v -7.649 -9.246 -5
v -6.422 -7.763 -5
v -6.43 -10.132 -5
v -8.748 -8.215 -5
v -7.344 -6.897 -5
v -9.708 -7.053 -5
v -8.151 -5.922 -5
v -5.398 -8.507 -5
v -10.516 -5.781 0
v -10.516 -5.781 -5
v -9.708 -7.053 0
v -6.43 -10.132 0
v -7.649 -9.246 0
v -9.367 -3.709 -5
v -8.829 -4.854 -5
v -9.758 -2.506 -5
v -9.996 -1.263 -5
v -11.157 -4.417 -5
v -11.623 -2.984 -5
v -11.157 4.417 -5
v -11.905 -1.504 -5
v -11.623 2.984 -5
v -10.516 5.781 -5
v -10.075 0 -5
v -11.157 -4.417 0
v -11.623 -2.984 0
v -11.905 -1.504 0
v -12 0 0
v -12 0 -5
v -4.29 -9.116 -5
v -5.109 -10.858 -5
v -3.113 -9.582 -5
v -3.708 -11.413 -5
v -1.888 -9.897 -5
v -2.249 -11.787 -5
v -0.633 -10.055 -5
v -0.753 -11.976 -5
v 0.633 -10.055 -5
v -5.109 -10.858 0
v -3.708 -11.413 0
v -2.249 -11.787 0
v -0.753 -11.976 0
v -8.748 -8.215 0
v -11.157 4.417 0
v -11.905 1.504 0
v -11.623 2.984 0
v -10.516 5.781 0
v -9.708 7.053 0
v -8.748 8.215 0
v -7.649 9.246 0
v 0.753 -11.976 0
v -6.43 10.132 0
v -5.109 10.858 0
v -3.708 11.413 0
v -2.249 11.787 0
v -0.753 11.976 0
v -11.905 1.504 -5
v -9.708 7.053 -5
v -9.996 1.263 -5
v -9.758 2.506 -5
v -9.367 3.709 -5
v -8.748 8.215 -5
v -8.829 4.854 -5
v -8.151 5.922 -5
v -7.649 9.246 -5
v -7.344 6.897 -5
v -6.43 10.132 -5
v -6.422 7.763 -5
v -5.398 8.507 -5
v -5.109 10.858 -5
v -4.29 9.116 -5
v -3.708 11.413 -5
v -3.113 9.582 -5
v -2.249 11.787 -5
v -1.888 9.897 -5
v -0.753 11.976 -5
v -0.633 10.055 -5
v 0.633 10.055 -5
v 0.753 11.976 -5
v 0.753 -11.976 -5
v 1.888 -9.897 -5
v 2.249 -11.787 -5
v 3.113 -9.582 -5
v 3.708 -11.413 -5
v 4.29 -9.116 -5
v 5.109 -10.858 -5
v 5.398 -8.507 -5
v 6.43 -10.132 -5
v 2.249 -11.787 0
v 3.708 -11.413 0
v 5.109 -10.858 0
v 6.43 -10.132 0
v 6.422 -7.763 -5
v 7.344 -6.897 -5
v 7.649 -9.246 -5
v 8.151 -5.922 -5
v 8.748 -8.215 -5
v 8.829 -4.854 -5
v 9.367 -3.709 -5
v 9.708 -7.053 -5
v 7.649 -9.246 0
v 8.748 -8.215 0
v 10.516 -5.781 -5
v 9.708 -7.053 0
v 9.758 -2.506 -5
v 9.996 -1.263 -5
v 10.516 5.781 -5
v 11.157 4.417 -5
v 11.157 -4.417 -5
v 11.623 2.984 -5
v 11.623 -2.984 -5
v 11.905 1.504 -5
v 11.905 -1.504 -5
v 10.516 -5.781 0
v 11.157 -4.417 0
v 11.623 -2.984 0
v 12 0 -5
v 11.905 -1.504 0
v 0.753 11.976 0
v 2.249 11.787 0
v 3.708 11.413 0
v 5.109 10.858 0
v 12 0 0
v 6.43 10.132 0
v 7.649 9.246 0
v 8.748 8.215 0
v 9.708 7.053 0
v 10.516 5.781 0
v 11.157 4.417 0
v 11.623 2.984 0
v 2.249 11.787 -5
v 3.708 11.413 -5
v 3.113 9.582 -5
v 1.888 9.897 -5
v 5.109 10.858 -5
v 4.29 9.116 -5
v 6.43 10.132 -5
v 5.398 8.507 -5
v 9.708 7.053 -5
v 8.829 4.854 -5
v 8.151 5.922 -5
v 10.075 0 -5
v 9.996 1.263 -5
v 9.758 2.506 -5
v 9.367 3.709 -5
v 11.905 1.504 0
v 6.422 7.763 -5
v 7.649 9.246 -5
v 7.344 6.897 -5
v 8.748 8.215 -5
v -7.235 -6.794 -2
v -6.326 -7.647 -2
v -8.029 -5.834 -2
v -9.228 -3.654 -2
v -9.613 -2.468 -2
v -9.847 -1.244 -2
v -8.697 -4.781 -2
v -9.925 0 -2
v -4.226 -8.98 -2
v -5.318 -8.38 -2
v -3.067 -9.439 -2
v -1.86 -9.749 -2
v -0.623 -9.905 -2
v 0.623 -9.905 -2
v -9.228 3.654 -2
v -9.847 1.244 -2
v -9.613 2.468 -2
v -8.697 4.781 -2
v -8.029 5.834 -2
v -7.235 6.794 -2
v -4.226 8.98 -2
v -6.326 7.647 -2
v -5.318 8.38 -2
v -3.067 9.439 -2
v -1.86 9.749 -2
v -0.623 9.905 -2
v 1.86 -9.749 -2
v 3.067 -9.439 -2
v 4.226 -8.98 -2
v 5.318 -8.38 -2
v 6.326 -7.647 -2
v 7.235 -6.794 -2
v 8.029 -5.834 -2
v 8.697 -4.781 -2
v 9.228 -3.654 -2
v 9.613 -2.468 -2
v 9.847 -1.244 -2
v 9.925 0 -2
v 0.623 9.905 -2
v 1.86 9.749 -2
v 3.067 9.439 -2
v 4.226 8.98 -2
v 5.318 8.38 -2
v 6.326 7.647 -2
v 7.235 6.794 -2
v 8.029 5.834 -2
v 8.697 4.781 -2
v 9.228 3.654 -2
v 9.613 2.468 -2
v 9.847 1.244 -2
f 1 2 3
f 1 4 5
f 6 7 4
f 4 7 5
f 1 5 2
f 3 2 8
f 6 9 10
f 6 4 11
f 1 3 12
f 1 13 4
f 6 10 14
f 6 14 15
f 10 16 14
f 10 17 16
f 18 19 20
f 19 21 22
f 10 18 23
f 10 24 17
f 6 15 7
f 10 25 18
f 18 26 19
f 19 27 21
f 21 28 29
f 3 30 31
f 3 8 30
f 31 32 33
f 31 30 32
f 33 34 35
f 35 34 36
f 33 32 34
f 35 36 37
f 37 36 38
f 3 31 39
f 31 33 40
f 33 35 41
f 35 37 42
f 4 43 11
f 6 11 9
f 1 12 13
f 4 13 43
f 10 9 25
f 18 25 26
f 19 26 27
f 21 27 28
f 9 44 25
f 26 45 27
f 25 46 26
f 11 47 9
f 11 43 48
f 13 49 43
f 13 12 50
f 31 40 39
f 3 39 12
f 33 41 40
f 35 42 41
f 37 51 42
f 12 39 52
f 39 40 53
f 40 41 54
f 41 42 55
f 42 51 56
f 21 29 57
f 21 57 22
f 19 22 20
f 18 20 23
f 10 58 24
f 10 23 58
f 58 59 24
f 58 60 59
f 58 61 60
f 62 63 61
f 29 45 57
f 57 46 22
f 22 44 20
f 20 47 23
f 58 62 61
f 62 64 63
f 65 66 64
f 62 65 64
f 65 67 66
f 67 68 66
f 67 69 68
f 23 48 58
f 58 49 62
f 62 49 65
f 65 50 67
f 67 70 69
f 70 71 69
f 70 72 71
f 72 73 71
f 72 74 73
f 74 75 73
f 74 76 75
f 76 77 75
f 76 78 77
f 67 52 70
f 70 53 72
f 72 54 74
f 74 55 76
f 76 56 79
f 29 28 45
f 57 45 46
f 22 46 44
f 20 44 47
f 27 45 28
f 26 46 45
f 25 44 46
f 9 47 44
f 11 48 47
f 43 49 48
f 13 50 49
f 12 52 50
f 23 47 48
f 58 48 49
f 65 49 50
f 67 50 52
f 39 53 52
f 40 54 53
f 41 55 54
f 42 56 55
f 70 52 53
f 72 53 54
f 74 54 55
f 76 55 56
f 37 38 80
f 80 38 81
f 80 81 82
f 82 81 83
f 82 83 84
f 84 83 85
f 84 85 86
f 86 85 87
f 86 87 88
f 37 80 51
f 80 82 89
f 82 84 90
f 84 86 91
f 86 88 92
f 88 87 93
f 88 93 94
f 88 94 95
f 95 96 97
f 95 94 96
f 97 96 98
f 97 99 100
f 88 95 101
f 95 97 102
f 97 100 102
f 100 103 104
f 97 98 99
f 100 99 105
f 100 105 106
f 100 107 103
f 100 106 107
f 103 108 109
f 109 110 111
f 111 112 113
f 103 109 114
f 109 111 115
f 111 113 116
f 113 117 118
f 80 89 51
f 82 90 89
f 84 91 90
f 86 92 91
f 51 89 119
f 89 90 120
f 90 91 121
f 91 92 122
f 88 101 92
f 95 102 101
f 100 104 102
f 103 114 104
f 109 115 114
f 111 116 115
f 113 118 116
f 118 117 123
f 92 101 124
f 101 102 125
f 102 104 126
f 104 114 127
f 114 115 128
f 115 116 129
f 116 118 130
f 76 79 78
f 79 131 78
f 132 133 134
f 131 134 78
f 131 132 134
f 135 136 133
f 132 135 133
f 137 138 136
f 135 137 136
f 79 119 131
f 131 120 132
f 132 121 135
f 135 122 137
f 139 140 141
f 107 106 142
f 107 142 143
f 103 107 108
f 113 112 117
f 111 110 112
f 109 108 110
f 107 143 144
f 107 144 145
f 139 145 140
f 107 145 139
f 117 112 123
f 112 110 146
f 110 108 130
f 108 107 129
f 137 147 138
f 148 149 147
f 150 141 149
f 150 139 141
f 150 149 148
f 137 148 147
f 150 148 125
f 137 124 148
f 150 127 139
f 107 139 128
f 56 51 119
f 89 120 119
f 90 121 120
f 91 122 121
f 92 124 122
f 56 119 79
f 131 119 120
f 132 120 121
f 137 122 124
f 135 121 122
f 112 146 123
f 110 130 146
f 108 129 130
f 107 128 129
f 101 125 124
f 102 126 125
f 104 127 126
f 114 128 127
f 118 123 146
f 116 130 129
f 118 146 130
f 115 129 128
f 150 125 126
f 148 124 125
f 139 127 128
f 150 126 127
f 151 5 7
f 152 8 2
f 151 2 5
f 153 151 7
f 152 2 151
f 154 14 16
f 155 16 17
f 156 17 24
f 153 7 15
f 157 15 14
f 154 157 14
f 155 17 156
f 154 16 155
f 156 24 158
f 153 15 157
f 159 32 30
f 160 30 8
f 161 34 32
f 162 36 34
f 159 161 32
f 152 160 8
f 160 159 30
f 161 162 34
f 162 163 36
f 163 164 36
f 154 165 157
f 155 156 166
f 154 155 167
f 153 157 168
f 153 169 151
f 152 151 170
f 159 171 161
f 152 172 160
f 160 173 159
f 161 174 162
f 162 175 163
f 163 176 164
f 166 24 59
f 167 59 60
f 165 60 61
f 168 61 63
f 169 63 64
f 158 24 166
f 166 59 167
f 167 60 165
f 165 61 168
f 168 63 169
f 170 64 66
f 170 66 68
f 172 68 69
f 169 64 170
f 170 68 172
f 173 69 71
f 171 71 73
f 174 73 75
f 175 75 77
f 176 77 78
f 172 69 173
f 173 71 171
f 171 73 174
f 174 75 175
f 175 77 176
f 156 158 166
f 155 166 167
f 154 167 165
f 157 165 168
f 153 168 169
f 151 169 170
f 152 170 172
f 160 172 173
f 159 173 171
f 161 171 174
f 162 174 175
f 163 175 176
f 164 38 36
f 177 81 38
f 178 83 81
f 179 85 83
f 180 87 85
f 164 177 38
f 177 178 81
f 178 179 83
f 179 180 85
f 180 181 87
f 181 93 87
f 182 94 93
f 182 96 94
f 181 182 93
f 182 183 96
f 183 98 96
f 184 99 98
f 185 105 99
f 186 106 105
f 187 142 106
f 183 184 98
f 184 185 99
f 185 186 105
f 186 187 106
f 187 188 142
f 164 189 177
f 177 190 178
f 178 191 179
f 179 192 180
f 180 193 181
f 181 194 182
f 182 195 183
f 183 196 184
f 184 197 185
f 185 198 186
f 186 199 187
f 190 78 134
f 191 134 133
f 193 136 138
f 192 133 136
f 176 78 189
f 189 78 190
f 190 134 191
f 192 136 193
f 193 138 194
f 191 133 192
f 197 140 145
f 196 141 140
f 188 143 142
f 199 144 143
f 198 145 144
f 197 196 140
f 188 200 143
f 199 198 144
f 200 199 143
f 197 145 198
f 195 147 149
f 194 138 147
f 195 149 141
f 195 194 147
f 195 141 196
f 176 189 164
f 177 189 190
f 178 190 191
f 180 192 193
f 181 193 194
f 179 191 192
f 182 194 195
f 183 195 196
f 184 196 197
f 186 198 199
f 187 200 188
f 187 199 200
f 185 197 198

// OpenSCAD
$fn = 50;

difference() {
	union() {
		translate(v = [0, 0, -5.0]) {
			cylinder(h = 5, r = 12.0);
		}
	}
	union() {
		#translate(v = [0, 0, -5.0]) {
			cylinder(h = 3, r1 = 10.075, r2 = 9.925);
		}
	}
}
